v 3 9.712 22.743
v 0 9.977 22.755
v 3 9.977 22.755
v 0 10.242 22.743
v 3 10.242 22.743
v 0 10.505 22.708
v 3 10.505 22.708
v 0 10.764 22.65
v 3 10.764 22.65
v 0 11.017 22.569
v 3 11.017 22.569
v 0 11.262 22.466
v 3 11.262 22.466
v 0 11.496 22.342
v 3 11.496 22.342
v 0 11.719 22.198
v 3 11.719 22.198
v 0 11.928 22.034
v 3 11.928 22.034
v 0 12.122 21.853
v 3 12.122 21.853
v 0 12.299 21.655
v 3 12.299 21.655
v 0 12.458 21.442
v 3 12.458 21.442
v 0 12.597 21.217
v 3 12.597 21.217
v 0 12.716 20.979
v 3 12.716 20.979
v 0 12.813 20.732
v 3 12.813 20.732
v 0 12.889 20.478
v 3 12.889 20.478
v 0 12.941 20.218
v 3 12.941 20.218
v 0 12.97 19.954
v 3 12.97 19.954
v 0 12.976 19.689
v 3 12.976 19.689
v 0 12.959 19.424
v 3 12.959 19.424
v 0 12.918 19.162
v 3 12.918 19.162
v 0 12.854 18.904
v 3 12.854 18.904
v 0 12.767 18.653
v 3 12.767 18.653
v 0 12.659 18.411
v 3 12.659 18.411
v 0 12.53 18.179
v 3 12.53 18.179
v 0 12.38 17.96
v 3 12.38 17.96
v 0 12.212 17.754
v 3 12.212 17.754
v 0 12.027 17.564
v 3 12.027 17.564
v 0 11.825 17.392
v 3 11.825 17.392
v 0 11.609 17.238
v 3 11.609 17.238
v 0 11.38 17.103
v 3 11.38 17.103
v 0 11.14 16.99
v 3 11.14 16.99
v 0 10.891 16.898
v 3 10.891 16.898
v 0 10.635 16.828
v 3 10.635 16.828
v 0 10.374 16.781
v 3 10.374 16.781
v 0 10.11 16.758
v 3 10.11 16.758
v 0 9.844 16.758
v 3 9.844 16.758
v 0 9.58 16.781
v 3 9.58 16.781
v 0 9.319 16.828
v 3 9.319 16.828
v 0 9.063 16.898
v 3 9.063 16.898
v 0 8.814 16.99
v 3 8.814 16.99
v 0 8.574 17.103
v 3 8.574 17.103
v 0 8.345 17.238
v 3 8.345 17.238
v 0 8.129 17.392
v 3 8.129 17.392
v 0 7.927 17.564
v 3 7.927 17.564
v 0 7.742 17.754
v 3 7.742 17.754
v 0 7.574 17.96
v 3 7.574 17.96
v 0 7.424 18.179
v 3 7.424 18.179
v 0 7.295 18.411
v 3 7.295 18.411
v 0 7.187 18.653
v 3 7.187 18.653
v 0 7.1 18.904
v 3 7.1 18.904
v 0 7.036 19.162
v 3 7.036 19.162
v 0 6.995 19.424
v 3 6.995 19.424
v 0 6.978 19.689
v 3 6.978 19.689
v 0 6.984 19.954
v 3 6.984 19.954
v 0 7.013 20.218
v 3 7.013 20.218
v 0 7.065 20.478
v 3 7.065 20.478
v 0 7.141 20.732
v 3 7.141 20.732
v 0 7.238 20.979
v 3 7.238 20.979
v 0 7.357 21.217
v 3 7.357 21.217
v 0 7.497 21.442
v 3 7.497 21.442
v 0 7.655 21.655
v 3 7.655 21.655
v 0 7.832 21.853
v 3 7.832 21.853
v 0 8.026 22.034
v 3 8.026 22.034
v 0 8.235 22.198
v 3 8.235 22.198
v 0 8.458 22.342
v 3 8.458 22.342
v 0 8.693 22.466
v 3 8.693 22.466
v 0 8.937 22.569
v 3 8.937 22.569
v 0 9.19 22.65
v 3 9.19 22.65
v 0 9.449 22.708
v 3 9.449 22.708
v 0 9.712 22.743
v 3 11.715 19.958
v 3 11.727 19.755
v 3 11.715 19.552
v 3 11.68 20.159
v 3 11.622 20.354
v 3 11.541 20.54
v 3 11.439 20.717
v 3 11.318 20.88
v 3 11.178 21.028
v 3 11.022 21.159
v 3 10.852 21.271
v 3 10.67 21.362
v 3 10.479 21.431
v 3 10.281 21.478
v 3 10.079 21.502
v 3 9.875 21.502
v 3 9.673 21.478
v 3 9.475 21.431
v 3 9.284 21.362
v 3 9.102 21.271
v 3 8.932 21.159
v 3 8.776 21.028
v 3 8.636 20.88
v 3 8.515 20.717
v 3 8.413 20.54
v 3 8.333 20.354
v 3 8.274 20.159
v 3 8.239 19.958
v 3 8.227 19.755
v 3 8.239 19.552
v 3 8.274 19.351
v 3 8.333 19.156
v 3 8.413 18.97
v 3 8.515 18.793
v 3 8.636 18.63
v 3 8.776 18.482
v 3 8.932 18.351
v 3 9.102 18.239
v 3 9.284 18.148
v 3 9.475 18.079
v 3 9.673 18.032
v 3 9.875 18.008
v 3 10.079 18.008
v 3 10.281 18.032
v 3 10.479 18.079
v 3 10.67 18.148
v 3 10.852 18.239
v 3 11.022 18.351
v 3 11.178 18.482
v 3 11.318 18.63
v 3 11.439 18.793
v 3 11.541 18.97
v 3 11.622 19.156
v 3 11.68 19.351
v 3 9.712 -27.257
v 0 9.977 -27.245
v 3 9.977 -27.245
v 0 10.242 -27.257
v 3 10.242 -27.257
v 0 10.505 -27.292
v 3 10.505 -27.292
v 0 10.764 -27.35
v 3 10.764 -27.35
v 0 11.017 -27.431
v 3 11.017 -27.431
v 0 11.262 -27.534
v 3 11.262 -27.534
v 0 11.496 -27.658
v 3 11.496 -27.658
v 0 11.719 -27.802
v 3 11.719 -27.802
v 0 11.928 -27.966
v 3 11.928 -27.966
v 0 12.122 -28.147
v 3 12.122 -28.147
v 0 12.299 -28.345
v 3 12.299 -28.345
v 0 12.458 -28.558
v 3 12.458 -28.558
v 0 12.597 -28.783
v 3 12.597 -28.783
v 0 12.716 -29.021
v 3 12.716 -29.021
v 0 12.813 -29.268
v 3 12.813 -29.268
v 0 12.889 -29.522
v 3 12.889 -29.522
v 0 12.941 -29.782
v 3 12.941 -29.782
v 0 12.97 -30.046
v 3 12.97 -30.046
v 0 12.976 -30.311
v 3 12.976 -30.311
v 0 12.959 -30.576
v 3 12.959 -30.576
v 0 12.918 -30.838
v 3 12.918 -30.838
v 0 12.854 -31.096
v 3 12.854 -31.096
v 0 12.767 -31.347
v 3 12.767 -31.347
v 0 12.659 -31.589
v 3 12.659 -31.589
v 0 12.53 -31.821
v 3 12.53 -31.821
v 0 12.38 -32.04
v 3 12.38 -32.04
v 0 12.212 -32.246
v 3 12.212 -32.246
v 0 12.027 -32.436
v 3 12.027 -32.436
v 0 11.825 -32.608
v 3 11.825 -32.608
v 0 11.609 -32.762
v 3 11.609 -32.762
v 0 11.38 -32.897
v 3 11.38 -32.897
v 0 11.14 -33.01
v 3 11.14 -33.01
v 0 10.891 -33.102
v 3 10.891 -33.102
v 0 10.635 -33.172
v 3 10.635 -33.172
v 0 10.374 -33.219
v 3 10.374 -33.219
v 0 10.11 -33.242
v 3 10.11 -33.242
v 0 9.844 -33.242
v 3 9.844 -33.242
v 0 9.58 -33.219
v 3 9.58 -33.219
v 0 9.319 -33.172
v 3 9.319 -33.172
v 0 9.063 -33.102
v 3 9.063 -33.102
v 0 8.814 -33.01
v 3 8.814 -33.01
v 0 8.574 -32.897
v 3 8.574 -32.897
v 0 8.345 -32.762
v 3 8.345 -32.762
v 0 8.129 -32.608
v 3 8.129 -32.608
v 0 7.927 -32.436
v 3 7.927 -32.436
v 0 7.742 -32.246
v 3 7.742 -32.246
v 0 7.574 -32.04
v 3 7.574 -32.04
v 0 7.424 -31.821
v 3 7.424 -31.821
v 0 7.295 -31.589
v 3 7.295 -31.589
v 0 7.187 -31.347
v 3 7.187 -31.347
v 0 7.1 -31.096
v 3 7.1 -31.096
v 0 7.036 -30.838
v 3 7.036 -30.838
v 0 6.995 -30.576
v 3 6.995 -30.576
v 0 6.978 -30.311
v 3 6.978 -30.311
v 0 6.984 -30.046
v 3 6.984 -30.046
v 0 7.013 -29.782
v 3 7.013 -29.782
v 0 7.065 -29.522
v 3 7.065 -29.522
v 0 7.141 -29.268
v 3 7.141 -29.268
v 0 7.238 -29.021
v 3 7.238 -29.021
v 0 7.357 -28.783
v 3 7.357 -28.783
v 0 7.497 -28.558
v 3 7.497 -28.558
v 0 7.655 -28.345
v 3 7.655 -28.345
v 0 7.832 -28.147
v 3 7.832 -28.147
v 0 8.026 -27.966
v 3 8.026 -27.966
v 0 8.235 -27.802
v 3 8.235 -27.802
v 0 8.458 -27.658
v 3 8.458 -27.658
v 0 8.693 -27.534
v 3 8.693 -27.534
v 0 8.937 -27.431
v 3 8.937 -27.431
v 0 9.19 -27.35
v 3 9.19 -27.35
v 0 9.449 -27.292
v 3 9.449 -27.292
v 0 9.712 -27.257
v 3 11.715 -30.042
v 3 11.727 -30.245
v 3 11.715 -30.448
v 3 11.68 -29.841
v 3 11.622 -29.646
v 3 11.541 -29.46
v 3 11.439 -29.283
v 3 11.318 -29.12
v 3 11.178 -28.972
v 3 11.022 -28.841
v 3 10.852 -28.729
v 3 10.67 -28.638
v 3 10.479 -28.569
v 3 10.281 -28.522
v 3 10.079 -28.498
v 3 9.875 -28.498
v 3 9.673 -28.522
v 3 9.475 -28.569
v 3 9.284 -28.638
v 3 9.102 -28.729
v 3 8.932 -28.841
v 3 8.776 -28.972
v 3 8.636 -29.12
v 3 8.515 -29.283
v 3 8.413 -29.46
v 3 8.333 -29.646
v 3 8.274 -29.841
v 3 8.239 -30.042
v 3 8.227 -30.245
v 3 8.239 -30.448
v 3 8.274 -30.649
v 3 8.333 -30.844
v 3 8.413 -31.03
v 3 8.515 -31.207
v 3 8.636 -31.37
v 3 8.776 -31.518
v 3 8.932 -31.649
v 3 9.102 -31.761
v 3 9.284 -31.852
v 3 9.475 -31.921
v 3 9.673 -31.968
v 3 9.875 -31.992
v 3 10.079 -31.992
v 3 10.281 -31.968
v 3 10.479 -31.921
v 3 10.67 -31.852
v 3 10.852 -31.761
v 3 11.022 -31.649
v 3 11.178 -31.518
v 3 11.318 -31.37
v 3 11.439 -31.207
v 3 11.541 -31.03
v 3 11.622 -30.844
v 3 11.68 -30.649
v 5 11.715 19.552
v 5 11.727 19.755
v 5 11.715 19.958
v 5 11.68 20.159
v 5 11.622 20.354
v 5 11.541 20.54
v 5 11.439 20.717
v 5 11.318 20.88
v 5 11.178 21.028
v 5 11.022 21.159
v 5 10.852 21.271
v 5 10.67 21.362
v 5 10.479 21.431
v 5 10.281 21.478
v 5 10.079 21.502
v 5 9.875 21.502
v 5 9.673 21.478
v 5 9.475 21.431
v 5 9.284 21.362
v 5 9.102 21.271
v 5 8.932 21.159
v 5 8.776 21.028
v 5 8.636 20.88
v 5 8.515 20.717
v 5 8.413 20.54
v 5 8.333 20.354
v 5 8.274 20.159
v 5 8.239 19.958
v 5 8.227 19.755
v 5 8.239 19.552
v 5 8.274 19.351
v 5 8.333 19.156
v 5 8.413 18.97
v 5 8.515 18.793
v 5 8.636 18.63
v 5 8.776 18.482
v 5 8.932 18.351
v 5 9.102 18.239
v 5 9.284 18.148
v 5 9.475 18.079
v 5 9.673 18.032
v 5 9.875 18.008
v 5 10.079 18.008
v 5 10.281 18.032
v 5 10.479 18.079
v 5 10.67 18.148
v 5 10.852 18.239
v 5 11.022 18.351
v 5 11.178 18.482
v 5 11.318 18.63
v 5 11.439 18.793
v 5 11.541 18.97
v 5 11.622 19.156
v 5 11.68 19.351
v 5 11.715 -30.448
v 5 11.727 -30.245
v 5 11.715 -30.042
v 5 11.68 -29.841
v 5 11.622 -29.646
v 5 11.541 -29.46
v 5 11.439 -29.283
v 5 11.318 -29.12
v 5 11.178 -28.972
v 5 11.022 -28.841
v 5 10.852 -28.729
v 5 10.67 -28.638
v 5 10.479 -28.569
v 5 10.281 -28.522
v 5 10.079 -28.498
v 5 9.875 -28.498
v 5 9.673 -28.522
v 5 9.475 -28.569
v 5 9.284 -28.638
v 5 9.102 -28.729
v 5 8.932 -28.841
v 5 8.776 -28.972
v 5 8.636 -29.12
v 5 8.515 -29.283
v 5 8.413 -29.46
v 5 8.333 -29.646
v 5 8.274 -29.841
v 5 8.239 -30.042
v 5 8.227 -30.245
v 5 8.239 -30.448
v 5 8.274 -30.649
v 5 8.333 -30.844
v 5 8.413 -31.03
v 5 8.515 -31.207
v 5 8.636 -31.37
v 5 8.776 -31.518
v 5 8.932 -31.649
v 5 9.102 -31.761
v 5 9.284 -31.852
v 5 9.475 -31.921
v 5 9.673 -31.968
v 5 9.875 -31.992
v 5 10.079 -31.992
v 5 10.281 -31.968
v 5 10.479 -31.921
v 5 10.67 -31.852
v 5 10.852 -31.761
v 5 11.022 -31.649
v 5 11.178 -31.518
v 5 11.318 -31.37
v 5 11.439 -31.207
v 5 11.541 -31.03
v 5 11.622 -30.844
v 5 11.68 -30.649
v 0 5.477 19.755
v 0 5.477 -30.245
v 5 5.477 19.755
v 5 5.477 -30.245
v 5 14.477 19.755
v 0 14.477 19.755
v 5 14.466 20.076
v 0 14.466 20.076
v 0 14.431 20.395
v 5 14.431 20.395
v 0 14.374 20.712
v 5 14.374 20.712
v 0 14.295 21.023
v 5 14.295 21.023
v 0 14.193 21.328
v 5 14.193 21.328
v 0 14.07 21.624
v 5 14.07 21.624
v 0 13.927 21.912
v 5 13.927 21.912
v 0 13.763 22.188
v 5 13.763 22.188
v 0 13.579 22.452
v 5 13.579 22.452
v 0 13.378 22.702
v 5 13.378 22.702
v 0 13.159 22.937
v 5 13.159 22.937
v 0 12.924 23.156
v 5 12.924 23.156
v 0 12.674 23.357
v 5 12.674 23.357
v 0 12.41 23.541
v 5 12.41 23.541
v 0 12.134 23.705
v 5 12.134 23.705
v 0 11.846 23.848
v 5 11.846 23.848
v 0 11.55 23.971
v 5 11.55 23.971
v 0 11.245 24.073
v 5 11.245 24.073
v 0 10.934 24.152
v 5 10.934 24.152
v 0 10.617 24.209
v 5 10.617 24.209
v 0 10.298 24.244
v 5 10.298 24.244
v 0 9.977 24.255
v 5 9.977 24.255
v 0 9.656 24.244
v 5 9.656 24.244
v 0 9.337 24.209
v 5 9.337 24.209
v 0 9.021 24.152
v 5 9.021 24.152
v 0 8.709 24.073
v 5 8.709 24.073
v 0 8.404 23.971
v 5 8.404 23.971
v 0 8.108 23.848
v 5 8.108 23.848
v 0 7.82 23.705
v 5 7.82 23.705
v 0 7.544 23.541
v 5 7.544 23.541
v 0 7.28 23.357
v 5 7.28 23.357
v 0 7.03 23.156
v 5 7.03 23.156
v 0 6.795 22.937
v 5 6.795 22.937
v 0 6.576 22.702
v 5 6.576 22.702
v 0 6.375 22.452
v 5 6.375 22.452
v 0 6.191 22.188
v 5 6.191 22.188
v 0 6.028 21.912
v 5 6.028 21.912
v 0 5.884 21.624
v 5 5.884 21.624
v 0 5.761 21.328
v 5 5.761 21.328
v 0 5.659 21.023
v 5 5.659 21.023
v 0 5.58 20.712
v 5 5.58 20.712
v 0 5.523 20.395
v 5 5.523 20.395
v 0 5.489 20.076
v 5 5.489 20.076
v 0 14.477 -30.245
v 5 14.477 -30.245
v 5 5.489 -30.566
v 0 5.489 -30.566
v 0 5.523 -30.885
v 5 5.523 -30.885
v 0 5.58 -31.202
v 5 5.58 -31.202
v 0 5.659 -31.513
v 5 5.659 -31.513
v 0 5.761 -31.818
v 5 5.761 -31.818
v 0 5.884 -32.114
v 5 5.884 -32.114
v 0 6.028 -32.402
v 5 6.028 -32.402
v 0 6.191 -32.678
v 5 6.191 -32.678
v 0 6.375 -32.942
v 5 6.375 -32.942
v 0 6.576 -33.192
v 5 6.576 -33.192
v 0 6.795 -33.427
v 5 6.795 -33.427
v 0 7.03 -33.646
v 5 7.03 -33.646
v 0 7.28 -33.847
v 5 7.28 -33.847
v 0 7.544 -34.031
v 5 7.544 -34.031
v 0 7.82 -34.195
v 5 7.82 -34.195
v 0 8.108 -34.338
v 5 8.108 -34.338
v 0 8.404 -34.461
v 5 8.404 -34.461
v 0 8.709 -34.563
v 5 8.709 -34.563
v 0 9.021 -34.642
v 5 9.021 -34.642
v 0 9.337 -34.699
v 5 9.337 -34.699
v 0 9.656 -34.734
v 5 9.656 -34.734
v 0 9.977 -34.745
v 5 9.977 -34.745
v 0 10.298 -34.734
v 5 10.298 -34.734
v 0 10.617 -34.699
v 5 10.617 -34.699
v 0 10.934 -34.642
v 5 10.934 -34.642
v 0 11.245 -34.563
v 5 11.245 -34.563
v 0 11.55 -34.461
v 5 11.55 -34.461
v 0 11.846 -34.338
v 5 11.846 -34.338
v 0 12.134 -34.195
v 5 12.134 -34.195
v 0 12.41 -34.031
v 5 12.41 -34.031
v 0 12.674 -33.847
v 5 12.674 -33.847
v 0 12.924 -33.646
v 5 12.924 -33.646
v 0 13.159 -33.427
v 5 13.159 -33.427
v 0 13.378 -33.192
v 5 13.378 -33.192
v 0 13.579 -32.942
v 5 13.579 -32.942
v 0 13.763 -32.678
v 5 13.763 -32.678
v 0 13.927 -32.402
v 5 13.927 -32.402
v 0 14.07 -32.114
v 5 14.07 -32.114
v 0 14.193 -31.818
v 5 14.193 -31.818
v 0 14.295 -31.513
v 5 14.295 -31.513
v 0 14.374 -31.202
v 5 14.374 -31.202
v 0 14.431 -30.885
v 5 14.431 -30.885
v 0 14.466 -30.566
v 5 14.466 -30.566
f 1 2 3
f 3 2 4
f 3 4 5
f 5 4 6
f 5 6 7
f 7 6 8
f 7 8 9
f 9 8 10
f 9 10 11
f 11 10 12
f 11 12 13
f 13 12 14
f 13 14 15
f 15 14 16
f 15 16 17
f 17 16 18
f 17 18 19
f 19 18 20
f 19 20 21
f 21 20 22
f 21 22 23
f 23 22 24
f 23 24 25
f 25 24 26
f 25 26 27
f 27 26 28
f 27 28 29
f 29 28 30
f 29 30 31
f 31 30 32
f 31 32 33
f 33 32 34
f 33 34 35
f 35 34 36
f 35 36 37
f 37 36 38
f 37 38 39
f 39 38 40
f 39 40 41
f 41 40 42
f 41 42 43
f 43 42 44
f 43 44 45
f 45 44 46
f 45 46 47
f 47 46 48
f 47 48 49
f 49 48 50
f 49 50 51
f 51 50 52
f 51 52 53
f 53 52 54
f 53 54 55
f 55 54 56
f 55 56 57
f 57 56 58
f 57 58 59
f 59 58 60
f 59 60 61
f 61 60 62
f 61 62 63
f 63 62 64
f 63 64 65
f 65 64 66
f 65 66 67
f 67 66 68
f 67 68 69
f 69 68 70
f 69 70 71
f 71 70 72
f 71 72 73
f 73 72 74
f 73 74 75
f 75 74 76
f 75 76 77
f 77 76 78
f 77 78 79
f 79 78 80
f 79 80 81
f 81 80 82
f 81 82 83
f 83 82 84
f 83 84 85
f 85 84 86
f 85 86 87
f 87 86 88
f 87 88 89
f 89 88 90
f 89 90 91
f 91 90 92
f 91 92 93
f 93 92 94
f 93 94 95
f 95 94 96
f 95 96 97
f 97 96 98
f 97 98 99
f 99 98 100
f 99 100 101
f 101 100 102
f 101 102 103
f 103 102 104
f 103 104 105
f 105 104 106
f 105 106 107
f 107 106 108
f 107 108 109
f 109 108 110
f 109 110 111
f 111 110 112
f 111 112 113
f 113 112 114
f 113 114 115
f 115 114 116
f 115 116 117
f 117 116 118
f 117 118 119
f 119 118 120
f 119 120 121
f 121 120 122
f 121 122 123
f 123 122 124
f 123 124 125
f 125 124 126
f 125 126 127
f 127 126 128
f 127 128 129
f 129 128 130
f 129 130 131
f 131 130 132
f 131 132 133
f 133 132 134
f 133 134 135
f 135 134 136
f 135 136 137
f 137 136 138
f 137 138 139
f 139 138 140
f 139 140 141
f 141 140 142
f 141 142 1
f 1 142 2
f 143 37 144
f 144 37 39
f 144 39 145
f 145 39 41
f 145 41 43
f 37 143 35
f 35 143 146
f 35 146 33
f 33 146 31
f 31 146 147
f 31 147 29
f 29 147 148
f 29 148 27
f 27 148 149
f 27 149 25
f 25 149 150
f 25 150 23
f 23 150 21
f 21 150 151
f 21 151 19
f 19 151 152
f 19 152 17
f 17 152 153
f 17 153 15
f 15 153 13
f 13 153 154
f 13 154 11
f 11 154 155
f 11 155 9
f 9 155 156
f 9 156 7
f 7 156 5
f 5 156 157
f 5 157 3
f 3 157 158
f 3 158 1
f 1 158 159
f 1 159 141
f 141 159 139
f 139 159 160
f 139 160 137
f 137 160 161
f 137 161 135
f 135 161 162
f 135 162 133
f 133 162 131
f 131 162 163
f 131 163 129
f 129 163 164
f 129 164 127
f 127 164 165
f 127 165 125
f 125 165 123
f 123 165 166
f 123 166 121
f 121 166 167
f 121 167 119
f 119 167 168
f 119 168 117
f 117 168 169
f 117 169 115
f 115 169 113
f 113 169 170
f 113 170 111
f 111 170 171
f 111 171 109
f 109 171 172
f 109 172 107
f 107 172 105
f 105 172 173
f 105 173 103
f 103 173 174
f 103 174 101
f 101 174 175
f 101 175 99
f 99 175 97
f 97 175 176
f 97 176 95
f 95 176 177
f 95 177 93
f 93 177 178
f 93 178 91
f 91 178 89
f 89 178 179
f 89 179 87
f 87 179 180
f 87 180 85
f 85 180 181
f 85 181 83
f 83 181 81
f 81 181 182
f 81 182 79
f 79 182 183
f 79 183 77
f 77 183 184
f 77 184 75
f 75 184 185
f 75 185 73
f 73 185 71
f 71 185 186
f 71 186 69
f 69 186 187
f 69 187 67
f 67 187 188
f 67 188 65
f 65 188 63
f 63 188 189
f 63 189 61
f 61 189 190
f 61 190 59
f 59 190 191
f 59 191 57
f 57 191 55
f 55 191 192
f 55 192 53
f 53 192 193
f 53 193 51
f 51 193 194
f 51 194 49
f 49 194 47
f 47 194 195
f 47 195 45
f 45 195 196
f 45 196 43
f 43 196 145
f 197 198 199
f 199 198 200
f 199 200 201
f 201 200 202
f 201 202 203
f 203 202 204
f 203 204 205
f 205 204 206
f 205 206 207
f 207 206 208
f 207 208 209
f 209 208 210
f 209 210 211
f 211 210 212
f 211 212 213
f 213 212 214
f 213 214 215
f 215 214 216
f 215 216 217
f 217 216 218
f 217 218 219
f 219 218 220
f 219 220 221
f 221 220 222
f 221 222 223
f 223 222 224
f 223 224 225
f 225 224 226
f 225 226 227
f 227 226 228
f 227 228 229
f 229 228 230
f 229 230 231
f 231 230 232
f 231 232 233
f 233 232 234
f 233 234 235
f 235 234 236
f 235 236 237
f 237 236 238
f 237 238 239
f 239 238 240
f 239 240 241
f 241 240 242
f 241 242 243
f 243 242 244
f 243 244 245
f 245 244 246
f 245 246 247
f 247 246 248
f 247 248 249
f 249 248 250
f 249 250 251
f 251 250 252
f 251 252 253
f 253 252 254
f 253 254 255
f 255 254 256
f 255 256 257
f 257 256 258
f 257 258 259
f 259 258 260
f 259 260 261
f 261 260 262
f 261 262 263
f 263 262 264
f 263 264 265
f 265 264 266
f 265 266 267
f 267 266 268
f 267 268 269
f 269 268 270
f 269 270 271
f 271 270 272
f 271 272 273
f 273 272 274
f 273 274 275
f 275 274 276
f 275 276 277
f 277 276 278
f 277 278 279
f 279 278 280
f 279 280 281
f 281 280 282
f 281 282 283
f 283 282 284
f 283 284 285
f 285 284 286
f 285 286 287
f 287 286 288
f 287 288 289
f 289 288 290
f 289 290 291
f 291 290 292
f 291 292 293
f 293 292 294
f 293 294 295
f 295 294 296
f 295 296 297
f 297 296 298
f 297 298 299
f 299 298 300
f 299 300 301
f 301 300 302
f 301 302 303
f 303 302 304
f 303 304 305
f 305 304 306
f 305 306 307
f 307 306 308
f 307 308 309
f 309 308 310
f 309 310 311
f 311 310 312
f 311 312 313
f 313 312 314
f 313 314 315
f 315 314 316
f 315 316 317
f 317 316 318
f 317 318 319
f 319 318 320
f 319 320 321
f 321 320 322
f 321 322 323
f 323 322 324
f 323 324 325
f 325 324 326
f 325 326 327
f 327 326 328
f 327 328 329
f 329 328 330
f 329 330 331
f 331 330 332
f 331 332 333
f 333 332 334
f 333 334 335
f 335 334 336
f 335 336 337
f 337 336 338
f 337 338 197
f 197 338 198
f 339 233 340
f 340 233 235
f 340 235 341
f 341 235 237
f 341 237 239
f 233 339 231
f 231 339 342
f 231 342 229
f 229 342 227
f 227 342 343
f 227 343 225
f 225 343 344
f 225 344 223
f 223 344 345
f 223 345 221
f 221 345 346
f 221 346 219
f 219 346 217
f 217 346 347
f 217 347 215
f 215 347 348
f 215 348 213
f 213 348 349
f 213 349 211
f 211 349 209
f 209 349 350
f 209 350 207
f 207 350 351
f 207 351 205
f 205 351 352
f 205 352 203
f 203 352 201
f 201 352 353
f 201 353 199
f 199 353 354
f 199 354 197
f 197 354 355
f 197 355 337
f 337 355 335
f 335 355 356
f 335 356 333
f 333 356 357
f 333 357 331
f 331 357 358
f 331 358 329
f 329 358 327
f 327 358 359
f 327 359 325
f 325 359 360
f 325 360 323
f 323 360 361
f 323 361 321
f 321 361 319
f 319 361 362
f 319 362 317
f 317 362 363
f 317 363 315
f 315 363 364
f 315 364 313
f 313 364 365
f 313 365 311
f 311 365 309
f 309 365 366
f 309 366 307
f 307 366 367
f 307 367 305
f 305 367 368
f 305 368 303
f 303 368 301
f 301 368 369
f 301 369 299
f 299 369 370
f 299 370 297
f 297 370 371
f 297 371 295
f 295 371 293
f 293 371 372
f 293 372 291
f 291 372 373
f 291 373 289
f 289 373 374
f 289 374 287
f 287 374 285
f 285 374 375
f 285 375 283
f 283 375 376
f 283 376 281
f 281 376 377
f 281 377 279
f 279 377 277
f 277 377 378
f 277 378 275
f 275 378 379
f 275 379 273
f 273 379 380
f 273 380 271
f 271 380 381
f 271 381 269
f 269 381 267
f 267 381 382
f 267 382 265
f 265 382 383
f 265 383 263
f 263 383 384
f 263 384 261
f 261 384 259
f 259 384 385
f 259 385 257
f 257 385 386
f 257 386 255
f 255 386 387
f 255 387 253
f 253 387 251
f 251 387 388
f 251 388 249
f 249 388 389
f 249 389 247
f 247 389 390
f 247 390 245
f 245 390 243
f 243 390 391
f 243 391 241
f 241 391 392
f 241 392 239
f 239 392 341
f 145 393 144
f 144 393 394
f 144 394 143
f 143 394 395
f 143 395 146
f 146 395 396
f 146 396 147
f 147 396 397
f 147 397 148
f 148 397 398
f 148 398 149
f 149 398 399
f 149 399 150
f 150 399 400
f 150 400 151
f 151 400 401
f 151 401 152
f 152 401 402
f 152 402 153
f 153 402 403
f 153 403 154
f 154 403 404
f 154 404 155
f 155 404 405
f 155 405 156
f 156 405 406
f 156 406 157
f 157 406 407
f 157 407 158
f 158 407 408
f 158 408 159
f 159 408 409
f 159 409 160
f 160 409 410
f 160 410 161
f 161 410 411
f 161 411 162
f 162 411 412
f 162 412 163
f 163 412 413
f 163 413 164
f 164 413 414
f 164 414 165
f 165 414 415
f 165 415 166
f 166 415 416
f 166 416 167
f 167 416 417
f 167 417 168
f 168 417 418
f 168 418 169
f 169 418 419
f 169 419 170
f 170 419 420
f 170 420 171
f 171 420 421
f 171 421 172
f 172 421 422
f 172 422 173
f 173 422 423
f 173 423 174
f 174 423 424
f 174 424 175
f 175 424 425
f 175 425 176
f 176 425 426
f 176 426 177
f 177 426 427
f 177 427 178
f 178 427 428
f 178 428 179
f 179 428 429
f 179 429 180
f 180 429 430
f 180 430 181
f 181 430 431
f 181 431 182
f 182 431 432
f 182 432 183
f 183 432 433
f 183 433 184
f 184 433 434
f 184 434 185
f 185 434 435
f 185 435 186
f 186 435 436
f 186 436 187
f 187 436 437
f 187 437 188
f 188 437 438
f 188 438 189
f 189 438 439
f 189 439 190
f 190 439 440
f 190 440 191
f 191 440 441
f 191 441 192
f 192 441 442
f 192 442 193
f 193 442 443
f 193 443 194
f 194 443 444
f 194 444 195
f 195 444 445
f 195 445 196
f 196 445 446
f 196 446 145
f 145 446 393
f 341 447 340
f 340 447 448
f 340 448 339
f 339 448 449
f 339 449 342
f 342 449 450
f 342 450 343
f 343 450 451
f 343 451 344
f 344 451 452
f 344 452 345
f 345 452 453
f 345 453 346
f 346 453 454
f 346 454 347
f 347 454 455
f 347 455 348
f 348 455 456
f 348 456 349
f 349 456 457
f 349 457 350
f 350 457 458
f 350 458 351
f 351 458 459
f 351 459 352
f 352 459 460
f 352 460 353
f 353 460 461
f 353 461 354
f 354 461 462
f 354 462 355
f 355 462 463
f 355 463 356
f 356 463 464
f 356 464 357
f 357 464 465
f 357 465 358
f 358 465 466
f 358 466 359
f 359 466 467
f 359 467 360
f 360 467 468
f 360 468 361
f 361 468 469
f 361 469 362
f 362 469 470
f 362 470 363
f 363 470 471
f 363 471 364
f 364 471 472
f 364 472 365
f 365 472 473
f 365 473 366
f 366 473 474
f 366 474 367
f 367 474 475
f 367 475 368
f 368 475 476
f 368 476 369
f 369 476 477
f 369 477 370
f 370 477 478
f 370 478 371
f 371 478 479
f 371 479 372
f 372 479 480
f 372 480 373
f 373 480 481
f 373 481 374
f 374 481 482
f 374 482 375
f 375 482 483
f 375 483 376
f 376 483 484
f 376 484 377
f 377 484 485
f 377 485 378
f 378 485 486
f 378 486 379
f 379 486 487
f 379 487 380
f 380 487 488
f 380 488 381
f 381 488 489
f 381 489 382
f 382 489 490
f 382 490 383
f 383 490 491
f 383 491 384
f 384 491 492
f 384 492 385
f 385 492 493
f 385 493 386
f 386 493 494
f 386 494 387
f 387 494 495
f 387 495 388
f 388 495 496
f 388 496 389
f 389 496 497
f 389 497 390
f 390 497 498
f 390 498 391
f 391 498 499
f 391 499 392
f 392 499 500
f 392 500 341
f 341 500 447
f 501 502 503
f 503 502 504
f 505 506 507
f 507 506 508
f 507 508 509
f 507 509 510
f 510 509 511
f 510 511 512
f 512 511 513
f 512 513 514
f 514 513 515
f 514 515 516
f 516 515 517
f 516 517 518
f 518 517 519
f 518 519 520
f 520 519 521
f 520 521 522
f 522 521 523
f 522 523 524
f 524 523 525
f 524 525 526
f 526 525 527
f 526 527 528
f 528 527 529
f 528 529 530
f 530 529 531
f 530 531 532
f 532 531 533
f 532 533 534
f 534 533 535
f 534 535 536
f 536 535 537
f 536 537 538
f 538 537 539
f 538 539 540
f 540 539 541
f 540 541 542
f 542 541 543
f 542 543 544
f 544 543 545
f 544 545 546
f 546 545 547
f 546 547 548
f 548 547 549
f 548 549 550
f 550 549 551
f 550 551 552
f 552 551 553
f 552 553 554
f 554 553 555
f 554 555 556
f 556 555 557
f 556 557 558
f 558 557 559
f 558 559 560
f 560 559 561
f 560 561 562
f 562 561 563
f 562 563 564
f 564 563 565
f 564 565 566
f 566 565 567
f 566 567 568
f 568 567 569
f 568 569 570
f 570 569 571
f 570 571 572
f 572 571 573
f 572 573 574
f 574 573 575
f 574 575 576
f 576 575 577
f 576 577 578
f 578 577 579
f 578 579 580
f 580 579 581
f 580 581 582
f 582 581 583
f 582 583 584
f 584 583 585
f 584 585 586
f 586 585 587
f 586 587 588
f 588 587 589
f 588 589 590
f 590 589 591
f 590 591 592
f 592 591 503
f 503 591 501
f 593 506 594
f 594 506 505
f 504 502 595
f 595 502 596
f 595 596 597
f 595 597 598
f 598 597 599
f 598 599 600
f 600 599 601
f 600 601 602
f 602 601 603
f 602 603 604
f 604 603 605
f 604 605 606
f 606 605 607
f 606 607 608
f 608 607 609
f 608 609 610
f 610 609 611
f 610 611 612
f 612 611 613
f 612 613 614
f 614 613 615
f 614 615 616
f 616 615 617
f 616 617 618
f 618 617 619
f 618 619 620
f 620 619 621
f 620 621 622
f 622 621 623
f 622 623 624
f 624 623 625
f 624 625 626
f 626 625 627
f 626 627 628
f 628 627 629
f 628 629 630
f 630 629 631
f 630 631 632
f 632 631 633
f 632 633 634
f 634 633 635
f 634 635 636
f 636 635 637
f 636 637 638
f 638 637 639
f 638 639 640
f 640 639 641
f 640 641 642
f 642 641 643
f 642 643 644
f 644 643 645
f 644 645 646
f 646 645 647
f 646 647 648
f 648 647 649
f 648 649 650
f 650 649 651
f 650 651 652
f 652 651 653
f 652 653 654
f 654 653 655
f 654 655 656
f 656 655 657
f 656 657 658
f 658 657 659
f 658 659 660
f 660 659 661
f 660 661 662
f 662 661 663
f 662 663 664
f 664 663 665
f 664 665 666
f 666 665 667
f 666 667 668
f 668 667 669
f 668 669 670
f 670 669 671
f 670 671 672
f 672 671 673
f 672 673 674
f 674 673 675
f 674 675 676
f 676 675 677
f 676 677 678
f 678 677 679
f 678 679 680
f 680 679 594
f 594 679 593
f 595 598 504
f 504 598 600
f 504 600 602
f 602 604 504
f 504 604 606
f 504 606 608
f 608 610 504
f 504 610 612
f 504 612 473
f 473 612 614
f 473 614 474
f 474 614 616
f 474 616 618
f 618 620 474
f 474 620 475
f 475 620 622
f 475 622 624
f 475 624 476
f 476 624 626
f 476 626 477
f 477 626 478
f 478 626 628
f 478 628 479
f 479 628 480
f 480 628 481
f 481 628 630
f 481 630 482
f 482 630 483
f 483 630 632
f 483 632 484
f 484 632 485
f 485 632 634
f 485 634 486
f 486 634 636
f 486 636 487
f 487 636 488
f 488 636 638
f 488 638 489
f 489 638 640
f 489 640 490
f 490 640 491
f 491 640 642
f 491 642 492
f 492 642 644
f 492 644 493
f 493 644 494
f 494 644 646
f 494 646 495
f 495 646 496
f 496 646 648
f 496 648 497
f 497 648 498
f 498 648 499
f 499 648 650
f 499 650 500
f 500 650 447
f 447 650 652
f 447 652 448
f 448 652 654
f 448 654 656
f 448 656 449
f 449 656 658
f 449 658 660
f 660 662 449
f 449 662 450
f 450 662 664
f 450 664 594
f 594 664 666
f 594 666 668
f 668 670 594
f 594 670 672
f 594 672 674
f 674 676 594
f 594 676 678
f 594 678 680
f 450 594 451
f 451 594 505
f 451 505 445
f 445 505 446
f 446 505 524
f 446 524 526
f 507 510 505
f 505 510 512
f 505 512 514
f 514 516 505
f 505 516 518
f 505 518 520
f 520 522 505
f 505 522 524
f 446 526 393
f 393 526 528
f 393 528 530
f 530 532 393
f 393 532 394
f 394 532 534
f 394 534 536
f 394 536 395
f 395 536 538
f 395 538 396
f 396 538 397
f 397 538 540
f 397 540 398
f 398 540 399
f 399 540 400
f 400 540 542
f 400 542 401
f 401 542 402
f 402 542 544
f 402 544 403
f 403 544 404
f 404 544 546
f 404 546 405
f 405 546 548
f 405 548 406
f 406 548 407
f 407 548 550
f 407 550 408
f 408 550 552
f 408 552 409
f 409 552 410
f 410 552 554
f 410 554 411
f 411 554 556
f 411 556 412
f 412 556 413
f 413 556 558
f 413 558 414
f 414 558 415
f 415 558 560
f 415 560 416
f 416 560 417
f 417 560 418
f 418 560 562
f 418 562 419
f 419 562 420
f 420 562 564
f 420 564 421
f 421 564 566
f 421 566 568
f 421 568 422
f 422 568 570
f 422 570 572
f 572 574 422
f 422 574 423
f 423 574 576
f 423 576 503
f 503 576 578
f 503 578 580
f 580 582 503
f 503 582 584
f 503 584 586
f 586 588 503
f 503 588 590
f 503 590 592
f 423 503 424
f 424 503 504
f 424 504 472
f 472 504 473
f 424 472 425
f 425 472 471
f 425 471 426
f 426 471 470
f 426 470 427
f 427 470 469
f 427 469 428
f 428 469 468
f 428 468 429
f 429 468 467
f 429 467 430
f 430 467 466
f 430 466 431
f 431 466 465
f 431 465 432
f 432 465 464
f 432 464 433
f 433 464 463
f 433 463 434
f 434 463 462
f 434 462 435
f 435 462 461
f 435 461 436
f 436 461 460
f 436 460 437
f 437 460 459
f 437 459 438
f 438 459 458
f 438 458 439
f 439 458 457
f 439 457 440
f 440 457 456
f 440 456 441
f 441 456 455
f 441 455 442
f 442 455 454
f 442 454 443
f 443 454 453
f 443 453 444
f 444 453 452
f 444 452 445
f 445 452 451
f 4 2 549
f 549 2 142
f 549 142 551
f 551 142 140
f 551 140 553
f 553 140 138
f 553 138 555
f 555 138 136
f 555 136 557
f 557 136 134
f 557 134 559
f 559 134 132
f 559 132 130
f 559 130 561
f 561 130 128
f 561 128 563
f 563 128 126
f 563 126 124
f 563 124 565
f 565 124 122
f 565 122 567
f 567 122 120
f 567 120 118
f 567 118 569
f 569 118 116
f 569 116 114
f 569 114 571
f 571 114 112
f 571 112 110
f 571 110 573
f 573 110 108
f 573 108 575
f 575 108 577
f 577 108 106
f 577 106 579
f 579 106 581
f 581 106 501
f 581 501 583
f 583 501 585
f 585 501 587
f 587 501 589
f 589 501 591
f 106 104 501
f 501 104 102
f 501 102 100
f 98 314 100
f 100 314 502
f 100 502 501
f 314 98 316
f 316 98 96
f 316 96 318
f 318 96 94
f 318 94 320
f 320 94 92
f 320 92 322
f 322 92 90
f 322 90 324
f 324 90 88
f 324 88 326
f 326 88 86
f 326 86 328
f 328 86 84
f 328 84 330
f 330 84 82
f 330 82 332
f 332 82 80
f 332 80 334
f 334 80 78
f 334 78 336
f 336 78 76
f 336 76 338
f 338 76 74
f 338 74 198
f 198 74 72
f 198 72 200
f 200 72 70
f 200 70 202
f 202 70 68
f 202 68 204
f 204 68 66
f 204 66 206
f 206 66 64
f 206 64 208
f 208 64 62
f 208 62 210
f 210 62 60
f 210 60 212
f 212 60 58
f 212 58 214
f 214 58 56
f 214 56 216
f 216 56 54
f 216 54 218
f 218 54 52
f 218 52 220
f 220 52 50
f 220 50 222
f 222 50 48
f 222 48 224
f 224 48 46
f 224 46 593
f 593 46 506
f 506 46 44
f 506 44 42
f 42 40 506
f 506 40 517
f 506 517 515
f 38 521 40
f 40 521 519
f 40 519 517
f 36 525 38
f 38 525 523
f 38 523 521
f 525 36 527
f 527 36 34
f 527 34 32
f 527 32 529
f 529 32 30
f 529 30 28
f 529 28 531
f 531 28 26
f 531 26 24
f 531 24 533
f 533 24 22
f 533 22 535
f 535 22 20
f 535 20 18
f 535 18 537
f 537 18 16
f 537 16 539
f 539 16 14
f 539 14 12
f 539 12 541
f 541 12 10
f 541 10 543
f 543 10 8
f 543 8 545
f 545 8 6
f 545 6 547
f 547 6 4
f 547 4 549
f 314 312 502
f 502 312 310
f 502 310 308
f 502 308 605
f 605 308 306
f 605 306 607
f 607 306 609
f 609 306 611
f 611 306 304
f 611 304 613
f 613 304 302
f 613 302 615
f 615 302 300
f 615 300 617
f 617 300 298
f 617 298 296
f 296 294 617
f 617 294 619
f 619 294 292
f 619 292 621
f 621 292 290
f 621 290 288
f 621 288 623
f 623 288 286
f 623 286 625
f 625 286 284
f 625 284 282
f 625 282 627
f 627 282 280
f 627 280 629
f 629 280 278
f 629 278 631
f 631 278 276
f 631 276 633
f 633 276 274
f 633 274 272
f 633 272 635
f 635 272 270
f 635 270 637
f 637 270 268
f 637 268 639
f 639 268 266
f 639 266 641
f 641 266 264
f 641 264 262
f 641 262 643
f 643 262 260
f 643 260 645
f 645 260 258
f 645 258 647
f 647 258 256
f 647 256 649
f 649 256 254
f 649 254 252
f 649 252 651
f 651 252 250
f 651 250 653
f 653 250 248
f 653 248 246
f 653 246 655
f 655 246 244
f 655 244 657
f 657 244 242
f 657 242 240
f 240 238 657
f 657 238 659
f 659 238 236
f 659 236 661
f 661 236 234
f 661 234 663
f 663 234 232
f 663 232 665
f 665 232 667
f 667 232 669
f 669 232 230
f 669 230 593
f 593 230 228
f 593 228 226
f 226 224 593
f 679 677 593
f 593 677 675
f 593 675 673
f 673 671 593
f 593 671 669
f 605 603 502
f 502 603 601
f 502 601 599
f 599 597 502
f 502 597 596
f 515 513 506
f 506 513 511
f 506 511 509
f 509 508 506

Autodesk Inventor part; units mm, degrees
ref_plane "YZ Plane" through (0, 0, 0) normal (1, 0, 0) x (0, 1, 0)
ref_plane "XZ Plane" through (0, 0, 0) normal (0, 1, 0) x (-1, 0, 0)
ref_plane "XY Plane" through (0, 0, 0) normal (0, 0, 1) x (1, 0, 0)
sketch "Szkic1" plane through (0, 0, 0) normal (1, 0, 0) x (0, 1, 0)
  line L0 (9.9771, 19.755) -> (9.9771, -30.245) construction
  line L1 (5.4771, 19.755) -> (5.4771, -30.245)
  line L2 (14.4771, -30.245) -> (14.4771, 19.755)
  arc A0 (14.4771, 19.755) -> (5.4771, 19.755) centre (9.9771, 19.755) ccw
  arc A1 (5.4771, -30.245) -> (14.4771, -30.245) centre (9.9771, -30.245) ccw
  circle A2 centre (9.9771, 19.755) radius 1.75
  circle A3 centre (9.9771, -30.245) radius 1.75
  point P0 (0, 0)
  point P1 (9.9771, -5.245)
  dimension "d0" = 50
  dimension "d1" = 9
  dimension "d2" = 3.5
  dimension "d3" = 3.5
extrude "Wyciągnięcie proste1" add sketch "Szkic1" along normal blind 5
sketch "Szkic5" plane through (0, 0, 0) normal (-1, 0, 0) x (0, 0, 1)
  circle A0 centre (19.755, 9.9771) radius 1.75 projected
  circle A1 centre (-30.245, 9.9771) radius 1.75 projected
  circle A2 centre (19.755, 9.9771) radius 3
  circle A3 centre (-30.245, 9.9771) radius 3
  point P0 (0, 0)
  dimension "d20" = 6
  dimension "d21" = 6
extrude "Wyciągnięcie proste6" cut sketch "Szkic5" against normal blind 3 contours A0 | A1 | A2 | A3
properties part number "belka_2"
